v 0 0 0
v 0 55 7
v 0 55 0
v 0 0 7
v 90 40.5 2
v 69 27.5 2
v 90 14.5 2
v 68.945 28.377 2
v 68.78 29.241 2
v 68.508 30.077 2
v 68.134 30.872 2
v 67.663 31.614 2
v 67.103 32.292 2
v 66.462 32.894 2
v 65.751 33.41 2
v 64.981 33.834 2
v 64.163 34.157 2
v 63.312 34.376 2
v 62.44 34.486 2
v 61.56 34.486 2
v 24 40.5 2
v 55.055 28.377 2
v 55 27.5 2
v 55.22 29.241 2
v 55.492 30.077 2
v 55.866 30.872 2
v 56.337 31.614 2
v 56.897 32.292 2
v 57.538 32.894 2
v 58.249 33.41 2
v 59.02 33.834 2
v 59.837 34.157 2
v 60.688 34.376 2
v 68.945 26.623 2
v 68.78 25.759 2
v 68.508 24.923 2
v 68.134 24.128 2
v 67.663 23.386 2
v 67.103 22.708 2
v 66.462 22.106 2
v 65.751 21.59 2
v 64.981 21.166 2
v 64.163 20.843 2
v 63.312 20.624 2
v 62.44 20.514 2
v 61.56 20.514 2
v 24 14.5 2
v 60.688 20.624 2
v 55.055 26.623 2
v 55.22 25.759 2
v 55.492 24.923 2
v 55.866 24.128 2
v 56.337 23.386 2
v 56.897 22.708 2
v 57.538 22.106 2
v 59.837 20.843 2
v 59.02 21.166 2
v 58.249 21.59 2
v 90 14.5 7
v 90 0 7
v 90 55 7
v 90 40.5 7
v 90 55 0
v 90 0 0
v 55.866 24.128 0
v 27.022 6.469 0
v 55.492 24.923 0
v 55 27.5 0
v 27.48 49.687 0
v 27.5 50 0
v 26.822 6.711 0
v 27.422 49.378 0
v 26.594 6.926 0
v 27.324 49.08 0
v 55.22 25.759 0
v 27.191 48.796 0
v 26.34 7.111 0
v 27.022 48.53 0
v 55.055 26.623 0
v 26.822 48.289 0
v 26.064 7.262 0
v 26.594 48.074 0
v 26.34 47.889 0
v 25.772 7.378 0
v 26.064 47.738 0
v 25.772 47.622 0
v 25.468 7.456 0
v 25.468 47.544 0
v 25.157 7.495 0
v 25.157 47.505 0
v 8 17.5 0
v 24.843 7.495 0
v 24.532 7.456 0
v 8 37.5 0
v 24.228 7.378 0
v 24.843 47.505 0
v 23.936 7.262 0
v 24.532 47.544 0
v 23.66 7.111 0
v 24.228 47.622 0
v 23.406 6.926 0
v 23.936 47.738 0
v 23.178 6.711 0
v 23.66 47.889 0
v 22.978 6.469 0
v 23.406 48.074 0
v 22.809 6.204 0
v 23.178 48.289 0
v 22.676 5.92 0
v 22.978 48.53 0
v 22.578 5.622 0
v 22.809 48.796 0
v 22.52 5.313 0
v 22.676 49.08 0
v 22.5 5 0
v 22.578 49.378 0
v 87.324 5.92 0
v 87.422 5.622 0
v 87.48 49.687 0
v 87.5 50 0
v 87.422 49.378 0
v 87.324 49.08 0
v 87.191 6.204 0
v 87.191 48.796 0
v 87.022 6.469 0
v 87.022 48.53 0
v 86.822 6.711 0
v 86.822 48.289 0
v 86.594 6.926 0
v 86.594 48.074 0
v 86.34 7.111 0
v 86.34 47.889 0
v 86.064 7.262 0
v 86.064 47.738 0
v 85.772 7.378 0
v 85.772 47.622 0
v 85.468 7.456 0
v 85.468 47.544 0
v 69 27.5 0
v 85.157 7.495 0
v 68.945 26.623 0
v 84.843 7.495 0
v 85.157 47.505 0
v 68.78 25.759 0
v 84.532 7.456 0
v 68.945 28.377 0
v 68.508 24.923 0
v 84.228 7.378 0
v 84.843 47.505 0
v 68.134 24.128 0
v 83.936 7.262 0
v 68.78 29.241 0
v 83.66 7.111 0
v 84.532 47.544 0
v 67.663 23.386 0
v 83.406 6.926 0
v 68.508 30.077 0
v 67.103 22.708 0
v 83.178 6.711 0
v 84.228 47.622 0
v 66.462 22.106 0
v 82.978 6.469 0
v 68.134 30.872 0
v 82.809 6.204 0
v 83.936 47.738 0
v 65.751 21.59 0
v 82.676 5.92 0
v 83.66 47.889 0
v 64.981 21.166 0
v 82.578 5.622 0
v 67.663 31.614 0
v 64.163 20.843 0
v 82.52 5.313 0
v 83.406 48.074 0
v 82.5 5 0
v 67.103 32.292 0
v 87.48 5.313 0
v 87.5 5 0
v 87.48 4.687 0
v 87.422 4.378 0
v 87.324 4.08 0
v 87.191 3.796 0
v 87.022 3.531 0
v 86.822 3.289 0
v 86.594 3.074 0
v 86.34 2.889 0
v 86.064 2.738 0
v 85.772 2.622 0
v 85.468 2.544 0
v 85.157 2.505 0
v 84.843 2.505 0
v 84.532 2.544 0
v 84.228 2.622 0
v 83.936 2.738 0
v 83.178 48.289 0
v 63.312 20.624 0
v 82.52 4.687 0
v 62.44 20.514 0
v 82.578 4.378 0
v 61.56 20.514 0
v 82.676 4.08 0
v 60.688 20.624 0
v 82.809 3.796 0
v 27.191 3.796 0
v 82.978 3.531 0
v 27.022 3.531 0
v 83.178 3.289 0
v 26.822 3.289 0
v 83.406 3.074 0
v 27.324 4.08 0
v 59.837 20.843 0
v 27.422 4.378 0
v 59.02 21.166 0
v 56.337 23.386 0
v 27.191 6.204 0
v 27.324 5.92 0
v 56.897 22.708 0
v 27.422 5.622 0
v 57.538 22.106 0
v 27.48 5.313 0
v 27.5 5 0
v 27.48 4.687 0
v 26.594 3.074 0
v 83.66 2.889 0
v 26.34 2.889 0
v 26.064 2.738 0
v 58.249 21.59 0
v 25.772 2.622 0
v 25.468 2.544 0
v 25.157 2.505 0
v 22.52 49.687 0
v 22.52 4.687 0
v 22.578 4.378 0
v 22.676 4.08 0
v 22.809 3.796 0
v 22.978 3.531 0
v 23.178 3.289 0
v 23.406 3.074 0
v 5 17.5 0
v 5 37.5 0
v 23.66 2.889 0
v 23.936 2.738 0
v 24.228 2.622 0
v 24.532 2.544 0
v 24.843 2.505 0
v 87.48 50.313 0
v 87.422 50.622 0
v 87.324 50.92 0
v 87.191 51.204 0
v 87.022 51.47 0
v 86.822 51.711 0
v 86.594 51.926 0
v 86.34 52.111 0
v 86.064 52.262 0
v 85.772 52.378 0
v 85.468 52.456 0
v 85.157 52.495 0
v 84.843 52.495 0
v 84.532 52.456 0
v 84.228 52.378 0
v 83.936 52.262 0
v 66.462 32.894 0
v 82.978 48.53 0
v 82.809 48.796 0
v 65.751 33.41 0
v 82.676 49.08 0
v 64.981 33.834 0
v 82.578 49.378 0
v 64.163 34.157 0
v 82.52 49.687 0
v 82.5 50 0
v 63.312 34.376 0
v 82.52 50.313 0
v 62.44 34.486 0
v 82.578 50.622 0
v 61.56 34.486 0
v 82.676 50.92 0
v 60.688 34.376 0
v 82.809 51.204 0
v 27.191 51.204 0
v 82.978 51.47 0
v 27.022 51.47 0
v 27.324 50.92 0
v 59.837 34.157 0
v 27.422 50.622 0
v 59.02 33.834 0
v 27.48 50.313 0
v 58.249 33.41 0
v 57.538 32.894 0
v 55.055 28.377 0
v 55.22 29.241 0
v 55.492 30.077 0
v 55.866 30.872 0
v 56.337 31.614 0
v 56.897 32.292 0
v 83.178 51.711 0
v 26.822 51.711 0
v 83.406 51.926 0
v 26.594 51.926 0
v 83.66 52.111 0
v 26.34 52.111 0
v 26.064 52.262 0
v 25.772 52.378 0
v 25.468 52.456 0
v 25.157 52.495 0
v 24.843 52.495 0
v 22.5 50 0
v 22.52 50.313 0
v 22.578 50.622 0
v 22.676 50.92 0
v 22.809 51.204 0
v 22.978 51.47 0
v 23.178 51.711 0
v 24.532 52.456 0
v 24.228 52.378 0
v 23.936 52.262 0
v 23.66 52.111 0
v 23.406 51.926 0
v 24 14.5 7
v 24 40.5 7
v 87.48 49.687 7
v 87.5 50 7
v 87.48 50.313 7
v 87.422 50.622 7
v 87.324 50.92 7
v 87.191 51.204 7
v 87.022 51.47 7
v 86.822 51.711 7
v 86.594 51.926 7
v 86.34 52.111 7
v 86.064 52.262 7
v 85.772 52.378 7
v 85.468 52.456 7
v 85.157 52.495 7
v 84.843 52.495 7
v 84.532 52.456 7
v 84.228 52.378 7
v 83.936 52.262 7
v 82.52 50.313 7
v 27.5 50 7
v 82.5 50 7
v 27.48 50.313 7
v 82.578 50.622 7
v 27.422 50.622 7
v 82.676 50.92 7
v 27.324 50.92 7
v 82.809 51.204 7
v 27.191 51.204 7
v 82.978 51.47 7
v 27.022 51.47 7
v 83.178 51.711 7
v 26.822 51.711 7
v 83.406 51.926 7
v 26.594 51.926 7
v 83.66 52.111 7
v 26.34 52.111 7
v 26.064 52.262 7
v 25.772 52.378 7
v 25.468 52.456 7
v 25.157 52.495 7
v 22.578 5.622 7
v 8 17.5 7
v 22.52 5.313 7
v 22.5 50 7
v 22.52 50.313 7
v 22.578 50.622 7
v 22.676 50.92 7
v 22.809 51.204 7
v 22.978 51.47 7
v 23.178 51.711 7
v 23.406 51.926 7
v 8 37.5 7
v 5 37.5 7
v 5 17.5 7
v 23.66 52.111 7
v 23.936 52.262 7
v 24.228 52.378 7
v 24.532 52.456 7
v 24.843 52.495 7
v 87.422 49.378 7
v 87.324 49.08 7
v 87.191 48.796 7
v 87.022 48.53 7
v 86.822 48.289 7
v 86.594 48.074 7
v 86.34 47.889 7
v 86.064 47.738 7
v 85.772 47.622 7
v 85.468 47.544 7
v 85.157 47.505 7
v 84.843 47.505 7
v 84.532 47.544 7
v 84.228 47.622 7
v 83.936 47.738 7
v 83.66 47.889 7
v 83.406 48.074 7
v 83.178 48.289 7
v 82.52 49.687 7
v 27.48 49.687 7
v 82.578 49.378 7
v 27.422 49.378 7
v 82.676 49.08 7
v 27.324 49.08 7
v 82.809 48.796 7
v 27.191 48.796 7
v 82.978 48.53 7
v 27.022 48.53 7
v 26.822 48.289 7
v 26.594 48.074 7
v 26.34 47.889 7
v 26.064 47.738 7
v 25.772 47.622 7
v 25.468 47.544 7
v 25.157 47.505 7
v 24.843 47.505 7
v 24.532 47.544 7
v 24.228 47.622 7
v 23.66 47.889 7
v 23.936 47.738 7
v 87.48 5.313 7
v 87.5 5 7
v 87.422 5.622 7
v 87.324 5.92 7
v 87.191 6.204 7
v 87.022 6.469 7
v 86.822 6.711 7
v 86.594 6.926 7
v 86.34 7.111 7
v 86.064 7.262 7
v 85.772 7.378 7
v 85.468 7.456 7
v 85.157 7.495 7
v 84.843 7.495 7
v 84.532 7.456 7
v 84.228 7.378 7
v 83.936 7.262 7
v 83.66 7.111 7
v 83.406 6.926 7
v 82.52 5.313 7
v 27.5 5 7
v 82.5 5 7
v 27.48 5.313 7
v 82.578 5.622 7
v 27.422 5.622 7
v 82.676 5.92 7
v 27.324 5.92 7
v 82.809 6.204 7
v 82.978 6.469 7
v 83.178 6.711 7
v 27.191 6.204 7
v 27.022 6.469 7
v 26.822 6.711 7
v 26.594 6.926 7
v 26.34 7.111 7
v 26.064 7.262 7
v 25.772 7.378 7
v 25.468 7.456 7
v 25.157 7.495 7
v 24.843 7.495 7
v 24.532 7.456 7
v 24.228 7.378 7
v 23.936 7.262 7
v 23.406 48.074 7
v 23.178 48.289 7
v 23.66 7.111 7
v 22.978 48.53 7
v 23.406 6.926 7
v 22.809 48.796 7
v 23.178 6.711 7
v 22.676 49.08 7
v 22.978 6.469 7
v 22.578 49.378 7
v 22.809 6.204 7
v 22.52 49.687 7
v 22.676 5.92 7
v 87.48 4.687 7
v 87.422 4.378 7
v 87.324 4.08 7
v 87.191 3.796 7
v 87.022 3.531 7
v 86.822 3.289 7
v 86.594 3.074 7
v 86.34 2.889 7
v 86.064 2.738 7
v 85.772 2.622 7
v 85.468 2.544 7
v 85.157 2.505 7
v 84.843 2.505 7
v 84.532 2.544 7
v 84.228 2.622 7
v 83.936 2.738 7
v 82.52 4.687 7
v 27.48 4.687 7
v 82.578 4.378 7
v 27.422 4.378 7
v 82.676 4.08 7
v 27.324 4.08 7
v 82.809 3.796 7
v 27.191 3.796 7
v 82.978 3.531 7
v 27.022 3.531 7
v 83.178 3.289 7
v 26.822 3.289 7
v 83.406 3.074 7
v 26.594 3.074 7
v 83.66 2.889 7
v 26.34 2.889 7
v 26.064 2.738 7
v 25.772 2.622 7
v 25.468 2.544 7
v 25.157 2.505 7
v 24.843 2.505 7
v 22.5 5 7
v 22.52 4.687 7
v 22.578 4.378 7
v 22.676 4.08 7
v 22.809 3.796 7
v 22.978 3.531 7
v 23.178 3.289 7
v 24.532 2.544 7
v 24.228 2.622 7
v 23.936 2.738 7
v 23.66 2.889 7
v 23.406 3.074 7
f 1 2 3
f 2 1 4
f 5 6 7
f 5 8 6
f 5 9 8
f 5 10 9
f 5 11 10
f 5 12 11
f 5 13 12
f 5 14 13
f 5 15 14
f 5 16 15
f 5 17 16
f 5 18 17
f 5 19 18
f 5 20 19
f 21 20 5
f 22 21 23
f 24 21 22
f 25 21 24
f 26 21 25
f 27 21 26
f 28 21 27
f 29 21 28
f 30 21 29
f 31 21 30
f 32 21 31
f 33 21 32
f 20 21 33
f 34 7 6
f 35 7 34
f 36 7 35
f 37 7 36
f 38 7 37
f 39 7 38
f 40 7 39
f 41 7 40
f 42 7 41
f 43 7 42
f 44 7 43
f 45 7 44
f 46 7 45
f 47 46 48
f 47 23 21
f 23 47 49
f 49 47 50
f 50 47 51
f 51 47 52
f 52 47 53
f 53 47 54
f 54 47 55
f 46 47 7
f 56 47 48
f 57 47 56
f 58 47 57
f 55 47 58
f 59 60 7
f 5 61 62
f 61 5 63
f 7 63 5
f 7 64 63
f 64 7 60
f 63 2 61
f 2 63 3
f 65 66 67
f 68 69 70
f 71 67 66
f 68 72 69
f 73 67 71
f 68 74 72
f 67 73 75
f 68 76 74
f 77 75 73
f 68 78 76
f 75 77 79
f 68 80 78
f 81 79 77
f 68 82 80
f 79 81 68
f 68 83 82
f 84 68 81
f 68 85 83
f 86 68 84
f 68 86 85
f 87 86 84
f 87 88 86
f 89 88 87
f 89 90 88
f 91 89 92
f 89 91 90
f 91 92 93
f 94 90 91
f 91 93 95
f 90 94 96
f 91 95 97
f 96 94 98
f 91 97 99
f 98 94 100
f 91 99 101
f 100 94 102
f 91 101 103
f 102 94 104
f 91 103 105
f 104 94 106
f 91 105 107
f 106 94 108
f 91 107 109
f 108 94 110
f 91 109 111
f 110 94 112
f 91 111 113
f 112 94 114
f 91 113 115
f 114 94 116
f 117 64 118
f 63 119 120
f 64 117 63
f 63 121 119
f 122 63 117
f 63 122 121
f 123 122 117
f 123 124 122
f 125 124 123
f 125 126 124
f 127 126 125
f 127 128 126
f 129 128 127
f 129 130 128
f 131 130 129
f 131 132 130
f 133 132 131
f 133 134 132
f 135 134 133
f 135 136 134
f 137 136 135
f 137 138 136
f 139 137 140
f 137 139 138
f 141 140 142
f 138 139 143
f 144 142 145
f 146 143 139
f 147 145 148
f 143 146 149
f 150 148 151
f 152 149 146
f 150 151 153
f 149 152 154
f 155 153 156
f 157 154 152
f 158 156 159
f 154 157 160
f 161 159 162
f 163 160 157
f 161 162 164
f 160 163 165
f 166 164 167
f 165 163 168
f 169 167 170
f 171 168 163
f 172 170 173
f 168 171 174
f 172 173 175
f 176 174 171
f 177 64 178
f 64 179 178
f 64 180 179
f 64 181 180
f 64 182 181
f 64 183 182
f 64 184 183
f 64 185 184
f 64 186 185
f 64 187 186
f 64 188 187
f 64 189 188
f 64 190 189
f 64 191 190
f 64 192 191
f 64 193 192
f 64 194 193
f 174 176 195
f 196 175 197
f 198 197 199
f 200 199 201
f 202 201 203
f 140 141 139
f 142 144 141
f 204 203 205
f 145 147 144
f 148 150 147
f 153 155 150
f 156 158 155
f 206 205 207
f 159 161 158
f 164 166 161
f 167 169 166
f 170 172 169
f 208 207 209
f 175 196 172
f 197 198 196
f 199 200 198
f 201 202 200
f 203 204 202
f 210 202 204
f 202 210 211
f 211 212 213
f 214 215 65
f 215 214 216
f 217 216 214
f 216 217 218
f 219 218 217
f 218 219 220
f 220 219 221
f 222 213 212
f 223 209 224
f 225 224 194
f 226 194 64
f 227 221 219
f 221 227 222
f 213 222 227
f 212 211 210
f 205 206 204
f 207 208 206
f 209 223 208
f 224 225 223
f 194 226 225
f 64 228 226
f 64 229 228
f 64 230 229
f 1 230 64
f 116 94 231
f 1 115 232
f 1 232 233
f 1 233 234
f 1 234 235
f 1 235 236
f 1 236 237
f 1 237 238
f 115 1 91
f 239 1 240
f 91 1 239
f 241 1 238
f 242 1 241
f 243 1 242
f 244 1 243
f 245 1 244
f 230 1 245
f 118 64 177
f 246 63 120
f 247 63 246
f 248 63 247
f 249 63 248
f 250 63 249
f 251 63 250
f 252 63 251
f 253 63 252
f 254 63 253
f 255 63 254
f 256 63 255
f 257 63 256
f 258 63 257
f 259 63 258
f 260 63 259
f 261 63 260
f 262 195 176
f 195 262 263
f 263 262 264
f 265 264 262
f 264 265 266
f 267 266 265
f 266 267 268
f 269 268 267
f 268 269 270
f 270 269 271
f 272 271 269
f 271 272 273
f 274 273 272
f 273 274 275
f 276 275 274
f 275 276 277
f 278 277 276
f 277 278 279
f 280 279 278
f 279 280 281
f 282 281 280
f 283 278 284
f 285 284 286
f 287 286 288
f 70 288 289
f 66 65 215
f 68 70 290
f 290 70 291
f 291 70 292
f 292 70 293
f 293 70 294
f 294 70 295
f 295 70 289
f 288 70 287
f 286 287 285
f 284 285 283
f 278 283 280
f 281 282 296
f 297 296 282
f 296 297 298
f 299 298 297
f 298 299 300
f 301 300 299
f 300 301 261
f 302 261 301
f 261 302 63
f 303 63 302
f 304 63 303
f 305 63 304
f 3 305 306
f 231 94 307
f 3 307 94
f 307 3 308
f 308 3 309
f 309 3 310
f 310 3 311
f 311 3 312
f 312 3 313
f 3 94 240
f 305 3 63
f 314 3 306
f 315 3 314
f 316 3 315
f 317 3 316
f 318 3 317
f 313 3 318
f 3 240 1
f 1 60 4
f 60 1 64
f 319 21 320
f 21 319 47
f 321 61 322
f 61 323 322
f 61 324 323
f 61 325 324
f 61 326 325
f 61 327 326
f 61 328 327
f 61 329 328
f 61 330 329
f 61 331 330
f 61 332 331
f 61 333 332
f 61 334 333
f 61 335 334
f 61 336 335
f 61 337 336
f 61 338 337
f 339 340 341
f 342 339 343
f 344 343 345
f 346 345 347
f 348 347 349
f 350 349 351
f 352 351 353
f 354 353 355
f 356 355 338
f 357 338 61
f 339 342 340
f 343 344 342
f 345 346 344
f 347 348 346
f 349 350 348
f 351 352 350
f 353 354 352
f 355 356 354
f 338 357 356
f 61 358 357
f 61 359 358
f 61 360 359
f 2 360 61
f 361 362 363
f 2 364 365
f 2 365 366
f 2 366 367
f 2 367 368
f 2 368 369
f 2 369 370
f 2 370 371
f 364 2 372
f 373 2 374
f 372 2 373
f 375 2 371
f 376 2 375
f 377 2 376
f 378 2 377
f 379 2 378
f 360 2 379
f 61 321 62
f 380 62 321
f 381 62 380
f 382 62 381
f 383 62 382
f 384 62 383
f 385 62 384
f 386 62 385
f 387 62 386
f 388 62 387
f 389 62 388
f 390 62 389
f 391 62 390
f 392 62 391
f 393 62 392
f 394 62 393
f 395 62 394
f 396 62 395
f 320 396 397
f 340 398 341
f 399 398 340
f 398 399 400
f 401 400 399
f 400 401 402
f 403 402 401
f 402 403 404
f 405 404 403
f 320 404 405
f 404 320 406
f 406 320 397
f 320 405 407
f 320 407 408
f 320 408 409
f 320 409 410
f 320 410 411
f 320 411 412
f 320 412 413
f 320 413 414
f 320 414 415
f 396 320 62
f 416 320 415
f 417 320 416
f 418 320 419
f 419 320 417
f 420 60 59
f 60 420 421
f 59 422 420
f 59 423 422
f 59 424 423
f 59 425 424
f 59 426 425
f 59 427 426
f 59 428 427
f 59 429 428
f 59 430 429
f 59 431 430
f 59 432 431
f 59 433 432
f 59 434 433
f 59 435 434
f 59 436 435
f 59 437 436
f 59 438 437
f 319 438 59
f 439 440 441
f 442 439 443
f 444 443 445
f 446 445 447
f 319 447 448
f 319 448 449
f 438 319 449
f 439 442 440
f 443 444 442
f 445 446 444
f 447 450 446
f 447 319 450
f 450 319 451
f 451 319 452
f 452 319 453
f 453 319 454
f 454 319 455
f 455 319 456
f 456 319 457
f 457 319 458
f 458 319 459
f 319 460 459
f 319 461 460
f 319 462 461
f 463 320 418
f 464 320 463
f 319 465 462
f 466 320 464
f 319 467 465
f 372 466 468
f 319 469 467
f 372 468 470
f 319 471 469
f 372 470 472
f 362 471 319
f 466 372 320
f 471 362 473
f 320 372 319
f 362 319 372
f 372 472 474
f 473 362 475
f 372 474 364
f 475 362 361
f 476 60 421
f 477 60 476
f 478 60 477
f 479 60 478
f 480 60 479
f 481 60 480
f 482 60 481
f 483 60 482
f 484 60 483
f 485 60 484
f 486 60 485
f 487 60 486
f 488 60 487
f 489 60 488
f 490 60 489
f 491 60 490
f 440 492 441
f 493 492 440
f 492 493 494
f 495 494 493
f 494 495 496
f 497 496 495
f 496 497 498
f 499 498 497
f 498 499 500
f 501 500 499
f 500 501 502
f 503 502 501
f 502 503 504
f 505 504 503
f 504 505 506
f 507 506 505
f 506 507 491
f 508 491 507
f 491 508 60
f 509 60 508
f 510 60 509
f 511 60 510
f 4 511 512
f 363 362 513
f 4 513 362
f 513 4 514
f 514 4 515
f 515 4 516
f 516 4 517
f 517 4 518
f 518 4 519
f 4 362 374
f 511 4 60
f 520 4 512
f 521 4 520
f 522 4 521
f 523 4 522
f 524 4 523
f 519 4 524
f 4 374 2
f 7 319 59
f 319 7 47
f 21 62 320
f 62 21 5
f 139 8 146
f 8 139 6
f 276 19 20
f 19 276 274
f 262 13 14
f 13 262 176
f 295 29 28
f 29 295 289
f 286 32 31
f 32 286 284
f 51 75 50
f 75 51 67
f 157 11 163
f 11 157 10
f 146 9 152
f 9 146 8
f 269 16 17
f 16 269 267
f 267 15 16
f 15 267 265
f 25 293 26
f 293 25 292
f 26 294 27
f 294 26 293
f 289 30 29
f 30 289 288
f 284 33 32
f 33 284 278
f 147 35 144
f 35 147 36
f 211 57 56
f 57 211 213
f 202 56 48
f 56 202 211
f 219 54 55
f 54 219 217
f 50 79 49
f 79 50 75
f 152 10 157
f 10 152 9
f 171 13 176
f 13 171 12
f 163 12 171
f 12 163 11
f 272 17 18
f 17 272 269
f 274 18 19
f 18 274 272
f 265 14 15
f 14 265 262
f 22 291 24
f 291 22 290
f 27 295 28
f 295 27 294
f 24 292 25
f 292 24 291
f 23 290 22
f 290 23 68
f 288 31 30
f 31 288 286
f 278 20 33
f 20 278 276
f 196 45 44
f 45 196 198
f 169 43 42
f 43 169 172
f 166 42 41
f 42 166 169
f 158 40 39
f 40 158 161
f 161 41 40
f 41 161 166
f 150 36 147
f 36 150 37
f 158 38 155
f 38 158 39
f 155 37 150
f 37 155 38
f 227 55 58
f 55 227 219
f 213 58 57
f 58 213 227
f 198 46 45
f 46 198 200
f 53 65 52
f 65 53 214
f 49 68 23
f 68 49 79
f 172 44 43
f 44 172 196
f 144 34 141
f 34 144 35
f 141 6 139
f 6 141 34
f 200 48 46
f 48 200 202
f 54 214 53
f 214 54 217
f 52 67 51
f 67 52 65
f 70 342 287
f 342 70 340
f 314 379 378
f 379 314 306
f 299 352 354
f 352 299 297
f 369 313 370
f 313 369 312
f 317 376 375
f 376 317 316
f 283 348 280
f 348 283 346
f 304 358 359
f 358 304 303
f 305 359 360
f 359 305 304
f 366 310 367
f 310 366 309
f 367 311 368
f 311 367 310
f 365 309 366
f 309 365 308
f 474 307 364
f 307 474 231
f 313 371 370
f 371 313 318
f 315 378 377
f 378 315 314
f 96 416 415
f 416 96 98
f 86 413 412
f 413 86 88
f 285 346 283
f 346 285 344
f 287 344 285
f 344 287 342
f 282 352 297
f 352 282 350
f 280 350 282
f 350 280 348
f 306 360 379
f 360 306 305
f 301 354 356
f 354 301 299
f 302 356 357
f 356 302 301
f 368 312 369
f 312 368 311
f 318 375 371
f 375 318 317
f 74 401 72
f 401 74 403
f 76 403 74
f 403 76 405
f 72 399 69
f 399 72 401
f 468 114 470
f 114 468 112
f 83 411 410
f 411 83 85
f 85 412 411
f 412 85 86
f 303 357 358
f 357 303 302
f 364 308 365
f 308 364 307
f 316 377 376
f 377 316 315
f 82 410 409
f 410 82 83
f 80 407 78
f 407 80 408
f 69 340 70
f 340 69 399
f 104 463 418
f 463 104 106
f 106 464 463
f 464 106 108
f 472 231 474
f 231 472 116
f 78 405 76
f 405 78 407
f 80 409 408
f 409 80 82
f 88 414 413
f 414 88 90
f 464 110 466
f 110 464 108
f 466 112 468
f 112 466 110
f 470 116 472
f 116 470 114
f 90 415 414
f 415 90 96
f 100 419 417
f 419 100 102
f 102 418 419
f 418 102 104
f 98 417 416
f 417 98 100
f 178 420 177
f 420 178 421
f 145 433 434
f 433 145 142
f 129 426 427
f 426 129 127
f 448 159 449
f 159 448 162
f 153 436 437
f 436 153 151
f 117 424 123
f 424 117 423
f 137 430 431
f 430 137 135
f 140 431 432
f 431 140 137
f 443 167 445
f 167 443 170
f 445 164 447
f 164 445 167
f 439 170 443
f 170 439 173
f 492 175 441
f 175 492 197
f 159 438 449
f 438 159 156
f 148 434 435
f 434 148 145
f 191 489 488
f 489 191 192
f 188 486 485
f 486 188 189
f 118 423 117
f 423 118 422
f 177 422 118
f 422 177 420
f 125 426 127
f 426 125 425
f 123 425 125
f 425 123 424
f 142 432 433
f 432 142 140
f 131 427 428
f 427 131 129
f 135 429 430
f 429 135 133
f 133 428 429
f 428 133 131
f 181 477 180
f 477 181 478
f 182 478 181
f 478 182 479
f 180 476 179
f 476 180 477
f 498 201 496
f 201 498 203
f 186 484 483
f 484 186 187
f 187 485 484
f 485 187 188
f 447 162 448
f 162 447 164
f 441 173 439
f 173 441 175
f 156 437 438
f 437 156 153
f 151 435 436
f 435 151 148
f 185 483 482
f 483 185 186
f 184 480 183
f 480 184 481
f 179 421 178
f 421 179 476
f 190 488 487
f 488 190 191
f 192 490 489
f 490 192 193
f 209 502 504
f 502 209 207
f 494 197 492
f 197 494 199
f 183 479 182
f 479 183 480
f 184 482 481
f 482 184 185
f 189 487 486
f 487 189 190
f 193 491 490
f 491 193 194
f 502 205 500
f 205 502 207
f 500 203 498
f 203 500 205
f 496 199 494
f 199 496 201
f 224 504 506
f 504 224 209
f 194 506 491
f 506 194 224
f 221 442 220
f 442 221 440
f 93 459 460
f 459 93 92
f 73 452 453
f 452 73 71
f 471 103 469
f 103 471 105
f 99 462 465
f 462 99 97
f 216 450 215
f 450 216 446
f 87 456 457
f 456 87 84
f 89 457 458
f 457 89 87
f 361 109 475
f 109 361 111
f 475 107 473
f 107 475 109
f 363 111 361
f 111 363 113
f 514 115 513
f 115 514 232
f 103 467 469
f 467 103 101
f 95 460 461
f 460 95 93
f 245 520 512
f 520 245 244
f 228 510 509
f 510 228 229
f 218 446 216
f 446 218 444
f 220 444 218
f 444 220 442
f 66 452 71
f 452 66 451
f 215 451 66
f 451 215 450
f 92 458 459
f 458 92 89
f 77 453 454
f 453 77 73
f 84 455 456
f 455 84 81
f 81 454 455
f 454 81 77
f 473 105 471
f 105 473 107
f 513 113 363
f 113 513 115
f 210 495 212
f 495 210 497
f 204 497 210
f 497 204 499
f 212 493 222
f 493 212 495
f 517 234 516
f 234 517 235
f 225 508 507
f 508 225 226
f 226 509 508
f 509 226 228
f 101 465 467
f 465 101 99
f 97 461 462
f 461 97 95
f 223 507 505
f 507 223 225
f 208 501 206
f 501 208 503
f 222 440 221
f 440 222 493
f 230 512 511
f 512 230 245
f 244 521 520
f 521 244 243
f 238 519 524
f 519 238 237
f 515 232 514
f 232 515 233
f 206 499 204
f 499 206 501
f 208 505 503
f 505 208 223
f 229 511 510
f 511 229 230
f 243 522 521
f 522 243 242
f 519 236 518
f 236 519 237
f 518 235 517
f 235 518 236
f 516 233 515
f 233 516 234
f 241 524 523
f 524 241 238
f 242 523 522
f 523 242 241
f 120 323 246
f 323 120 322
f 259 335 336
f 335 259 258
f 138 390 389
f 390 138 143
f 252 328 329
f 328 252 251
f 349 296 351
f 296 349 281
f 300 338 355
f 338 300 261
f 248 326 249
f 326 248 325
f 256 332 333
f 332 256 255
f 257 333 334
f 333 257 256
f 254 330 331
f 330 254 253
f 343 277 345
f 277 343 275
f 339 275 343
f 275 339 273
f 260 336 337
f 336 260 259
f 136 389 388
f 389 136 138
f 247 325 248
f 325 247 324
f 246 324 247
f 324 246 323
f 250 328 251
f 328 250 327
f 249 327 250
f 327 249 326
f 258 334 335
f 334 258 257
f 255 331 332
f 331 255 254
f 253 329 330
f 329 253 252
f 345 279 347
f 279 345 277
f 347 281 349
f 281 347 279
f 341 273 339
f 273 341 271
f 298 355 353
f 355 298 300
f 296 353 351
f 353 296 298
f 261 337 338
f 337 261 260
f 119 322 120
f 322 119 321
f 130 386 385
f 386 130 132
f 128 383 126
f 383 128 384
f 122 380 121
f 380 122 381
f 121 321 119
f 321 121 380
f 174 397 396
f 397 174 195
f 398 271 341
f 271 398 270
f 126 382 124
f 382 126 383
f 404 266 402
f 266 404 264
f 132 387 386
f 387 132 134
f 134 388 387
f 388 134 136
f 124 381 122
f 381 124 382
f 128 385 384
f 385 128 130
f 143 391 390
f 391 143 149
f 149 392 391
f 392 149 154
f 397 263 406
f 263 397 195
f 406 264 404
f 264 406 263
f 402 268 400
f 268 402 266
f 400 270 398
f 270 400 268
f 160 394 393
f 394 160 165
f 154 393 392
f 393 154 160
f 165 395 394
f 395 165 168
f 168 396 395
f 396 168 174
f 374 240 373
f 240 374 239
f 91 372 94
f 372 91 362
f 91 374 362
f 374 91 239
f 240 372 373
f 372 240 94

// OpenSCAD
// Slide carrier body w/joined side & end caps
difference() {
    union() {
        // Base plate
        cube([90,55,2]);
        
        // Slide Side Guides
        translate([24, 0, 2]) {
            color([1,0,0])
            cube([66,14.5,5]);
        }
        translate([24, 40.5, 2]) {
            color([0,0,1])
            cube([66,14.5,5]);
        }
       // Slide End Stop
       translate([0, 0, 2]) {
             color([0,1,0])
             cube([24,55,5]);
       }

    }
    // Hole for slide well
    translate([62,27.5,-1]) cylinder(h=4, r=7.0,
    $fn=50);
   
    // Guide holes in each corner
    translate([25,50,-1]) cylinder(h=12, d=5,
    $fn=50);
    translate([85,5,-1]) cylinder(h=12, d=5,
    $fn=50);
    translate([25,5,-1]) cylinder(h=12, d=5,
    $fn=50);
    translate([85,50,-1]) cylinder(h=12, d=5,
    $fn=50);
    
    // Slot for Pi Camera ribbon cable
    translate([5, 17.5, -1]) {
        color([1,0,0])
        cube([3,20,15]);  
    }
}
